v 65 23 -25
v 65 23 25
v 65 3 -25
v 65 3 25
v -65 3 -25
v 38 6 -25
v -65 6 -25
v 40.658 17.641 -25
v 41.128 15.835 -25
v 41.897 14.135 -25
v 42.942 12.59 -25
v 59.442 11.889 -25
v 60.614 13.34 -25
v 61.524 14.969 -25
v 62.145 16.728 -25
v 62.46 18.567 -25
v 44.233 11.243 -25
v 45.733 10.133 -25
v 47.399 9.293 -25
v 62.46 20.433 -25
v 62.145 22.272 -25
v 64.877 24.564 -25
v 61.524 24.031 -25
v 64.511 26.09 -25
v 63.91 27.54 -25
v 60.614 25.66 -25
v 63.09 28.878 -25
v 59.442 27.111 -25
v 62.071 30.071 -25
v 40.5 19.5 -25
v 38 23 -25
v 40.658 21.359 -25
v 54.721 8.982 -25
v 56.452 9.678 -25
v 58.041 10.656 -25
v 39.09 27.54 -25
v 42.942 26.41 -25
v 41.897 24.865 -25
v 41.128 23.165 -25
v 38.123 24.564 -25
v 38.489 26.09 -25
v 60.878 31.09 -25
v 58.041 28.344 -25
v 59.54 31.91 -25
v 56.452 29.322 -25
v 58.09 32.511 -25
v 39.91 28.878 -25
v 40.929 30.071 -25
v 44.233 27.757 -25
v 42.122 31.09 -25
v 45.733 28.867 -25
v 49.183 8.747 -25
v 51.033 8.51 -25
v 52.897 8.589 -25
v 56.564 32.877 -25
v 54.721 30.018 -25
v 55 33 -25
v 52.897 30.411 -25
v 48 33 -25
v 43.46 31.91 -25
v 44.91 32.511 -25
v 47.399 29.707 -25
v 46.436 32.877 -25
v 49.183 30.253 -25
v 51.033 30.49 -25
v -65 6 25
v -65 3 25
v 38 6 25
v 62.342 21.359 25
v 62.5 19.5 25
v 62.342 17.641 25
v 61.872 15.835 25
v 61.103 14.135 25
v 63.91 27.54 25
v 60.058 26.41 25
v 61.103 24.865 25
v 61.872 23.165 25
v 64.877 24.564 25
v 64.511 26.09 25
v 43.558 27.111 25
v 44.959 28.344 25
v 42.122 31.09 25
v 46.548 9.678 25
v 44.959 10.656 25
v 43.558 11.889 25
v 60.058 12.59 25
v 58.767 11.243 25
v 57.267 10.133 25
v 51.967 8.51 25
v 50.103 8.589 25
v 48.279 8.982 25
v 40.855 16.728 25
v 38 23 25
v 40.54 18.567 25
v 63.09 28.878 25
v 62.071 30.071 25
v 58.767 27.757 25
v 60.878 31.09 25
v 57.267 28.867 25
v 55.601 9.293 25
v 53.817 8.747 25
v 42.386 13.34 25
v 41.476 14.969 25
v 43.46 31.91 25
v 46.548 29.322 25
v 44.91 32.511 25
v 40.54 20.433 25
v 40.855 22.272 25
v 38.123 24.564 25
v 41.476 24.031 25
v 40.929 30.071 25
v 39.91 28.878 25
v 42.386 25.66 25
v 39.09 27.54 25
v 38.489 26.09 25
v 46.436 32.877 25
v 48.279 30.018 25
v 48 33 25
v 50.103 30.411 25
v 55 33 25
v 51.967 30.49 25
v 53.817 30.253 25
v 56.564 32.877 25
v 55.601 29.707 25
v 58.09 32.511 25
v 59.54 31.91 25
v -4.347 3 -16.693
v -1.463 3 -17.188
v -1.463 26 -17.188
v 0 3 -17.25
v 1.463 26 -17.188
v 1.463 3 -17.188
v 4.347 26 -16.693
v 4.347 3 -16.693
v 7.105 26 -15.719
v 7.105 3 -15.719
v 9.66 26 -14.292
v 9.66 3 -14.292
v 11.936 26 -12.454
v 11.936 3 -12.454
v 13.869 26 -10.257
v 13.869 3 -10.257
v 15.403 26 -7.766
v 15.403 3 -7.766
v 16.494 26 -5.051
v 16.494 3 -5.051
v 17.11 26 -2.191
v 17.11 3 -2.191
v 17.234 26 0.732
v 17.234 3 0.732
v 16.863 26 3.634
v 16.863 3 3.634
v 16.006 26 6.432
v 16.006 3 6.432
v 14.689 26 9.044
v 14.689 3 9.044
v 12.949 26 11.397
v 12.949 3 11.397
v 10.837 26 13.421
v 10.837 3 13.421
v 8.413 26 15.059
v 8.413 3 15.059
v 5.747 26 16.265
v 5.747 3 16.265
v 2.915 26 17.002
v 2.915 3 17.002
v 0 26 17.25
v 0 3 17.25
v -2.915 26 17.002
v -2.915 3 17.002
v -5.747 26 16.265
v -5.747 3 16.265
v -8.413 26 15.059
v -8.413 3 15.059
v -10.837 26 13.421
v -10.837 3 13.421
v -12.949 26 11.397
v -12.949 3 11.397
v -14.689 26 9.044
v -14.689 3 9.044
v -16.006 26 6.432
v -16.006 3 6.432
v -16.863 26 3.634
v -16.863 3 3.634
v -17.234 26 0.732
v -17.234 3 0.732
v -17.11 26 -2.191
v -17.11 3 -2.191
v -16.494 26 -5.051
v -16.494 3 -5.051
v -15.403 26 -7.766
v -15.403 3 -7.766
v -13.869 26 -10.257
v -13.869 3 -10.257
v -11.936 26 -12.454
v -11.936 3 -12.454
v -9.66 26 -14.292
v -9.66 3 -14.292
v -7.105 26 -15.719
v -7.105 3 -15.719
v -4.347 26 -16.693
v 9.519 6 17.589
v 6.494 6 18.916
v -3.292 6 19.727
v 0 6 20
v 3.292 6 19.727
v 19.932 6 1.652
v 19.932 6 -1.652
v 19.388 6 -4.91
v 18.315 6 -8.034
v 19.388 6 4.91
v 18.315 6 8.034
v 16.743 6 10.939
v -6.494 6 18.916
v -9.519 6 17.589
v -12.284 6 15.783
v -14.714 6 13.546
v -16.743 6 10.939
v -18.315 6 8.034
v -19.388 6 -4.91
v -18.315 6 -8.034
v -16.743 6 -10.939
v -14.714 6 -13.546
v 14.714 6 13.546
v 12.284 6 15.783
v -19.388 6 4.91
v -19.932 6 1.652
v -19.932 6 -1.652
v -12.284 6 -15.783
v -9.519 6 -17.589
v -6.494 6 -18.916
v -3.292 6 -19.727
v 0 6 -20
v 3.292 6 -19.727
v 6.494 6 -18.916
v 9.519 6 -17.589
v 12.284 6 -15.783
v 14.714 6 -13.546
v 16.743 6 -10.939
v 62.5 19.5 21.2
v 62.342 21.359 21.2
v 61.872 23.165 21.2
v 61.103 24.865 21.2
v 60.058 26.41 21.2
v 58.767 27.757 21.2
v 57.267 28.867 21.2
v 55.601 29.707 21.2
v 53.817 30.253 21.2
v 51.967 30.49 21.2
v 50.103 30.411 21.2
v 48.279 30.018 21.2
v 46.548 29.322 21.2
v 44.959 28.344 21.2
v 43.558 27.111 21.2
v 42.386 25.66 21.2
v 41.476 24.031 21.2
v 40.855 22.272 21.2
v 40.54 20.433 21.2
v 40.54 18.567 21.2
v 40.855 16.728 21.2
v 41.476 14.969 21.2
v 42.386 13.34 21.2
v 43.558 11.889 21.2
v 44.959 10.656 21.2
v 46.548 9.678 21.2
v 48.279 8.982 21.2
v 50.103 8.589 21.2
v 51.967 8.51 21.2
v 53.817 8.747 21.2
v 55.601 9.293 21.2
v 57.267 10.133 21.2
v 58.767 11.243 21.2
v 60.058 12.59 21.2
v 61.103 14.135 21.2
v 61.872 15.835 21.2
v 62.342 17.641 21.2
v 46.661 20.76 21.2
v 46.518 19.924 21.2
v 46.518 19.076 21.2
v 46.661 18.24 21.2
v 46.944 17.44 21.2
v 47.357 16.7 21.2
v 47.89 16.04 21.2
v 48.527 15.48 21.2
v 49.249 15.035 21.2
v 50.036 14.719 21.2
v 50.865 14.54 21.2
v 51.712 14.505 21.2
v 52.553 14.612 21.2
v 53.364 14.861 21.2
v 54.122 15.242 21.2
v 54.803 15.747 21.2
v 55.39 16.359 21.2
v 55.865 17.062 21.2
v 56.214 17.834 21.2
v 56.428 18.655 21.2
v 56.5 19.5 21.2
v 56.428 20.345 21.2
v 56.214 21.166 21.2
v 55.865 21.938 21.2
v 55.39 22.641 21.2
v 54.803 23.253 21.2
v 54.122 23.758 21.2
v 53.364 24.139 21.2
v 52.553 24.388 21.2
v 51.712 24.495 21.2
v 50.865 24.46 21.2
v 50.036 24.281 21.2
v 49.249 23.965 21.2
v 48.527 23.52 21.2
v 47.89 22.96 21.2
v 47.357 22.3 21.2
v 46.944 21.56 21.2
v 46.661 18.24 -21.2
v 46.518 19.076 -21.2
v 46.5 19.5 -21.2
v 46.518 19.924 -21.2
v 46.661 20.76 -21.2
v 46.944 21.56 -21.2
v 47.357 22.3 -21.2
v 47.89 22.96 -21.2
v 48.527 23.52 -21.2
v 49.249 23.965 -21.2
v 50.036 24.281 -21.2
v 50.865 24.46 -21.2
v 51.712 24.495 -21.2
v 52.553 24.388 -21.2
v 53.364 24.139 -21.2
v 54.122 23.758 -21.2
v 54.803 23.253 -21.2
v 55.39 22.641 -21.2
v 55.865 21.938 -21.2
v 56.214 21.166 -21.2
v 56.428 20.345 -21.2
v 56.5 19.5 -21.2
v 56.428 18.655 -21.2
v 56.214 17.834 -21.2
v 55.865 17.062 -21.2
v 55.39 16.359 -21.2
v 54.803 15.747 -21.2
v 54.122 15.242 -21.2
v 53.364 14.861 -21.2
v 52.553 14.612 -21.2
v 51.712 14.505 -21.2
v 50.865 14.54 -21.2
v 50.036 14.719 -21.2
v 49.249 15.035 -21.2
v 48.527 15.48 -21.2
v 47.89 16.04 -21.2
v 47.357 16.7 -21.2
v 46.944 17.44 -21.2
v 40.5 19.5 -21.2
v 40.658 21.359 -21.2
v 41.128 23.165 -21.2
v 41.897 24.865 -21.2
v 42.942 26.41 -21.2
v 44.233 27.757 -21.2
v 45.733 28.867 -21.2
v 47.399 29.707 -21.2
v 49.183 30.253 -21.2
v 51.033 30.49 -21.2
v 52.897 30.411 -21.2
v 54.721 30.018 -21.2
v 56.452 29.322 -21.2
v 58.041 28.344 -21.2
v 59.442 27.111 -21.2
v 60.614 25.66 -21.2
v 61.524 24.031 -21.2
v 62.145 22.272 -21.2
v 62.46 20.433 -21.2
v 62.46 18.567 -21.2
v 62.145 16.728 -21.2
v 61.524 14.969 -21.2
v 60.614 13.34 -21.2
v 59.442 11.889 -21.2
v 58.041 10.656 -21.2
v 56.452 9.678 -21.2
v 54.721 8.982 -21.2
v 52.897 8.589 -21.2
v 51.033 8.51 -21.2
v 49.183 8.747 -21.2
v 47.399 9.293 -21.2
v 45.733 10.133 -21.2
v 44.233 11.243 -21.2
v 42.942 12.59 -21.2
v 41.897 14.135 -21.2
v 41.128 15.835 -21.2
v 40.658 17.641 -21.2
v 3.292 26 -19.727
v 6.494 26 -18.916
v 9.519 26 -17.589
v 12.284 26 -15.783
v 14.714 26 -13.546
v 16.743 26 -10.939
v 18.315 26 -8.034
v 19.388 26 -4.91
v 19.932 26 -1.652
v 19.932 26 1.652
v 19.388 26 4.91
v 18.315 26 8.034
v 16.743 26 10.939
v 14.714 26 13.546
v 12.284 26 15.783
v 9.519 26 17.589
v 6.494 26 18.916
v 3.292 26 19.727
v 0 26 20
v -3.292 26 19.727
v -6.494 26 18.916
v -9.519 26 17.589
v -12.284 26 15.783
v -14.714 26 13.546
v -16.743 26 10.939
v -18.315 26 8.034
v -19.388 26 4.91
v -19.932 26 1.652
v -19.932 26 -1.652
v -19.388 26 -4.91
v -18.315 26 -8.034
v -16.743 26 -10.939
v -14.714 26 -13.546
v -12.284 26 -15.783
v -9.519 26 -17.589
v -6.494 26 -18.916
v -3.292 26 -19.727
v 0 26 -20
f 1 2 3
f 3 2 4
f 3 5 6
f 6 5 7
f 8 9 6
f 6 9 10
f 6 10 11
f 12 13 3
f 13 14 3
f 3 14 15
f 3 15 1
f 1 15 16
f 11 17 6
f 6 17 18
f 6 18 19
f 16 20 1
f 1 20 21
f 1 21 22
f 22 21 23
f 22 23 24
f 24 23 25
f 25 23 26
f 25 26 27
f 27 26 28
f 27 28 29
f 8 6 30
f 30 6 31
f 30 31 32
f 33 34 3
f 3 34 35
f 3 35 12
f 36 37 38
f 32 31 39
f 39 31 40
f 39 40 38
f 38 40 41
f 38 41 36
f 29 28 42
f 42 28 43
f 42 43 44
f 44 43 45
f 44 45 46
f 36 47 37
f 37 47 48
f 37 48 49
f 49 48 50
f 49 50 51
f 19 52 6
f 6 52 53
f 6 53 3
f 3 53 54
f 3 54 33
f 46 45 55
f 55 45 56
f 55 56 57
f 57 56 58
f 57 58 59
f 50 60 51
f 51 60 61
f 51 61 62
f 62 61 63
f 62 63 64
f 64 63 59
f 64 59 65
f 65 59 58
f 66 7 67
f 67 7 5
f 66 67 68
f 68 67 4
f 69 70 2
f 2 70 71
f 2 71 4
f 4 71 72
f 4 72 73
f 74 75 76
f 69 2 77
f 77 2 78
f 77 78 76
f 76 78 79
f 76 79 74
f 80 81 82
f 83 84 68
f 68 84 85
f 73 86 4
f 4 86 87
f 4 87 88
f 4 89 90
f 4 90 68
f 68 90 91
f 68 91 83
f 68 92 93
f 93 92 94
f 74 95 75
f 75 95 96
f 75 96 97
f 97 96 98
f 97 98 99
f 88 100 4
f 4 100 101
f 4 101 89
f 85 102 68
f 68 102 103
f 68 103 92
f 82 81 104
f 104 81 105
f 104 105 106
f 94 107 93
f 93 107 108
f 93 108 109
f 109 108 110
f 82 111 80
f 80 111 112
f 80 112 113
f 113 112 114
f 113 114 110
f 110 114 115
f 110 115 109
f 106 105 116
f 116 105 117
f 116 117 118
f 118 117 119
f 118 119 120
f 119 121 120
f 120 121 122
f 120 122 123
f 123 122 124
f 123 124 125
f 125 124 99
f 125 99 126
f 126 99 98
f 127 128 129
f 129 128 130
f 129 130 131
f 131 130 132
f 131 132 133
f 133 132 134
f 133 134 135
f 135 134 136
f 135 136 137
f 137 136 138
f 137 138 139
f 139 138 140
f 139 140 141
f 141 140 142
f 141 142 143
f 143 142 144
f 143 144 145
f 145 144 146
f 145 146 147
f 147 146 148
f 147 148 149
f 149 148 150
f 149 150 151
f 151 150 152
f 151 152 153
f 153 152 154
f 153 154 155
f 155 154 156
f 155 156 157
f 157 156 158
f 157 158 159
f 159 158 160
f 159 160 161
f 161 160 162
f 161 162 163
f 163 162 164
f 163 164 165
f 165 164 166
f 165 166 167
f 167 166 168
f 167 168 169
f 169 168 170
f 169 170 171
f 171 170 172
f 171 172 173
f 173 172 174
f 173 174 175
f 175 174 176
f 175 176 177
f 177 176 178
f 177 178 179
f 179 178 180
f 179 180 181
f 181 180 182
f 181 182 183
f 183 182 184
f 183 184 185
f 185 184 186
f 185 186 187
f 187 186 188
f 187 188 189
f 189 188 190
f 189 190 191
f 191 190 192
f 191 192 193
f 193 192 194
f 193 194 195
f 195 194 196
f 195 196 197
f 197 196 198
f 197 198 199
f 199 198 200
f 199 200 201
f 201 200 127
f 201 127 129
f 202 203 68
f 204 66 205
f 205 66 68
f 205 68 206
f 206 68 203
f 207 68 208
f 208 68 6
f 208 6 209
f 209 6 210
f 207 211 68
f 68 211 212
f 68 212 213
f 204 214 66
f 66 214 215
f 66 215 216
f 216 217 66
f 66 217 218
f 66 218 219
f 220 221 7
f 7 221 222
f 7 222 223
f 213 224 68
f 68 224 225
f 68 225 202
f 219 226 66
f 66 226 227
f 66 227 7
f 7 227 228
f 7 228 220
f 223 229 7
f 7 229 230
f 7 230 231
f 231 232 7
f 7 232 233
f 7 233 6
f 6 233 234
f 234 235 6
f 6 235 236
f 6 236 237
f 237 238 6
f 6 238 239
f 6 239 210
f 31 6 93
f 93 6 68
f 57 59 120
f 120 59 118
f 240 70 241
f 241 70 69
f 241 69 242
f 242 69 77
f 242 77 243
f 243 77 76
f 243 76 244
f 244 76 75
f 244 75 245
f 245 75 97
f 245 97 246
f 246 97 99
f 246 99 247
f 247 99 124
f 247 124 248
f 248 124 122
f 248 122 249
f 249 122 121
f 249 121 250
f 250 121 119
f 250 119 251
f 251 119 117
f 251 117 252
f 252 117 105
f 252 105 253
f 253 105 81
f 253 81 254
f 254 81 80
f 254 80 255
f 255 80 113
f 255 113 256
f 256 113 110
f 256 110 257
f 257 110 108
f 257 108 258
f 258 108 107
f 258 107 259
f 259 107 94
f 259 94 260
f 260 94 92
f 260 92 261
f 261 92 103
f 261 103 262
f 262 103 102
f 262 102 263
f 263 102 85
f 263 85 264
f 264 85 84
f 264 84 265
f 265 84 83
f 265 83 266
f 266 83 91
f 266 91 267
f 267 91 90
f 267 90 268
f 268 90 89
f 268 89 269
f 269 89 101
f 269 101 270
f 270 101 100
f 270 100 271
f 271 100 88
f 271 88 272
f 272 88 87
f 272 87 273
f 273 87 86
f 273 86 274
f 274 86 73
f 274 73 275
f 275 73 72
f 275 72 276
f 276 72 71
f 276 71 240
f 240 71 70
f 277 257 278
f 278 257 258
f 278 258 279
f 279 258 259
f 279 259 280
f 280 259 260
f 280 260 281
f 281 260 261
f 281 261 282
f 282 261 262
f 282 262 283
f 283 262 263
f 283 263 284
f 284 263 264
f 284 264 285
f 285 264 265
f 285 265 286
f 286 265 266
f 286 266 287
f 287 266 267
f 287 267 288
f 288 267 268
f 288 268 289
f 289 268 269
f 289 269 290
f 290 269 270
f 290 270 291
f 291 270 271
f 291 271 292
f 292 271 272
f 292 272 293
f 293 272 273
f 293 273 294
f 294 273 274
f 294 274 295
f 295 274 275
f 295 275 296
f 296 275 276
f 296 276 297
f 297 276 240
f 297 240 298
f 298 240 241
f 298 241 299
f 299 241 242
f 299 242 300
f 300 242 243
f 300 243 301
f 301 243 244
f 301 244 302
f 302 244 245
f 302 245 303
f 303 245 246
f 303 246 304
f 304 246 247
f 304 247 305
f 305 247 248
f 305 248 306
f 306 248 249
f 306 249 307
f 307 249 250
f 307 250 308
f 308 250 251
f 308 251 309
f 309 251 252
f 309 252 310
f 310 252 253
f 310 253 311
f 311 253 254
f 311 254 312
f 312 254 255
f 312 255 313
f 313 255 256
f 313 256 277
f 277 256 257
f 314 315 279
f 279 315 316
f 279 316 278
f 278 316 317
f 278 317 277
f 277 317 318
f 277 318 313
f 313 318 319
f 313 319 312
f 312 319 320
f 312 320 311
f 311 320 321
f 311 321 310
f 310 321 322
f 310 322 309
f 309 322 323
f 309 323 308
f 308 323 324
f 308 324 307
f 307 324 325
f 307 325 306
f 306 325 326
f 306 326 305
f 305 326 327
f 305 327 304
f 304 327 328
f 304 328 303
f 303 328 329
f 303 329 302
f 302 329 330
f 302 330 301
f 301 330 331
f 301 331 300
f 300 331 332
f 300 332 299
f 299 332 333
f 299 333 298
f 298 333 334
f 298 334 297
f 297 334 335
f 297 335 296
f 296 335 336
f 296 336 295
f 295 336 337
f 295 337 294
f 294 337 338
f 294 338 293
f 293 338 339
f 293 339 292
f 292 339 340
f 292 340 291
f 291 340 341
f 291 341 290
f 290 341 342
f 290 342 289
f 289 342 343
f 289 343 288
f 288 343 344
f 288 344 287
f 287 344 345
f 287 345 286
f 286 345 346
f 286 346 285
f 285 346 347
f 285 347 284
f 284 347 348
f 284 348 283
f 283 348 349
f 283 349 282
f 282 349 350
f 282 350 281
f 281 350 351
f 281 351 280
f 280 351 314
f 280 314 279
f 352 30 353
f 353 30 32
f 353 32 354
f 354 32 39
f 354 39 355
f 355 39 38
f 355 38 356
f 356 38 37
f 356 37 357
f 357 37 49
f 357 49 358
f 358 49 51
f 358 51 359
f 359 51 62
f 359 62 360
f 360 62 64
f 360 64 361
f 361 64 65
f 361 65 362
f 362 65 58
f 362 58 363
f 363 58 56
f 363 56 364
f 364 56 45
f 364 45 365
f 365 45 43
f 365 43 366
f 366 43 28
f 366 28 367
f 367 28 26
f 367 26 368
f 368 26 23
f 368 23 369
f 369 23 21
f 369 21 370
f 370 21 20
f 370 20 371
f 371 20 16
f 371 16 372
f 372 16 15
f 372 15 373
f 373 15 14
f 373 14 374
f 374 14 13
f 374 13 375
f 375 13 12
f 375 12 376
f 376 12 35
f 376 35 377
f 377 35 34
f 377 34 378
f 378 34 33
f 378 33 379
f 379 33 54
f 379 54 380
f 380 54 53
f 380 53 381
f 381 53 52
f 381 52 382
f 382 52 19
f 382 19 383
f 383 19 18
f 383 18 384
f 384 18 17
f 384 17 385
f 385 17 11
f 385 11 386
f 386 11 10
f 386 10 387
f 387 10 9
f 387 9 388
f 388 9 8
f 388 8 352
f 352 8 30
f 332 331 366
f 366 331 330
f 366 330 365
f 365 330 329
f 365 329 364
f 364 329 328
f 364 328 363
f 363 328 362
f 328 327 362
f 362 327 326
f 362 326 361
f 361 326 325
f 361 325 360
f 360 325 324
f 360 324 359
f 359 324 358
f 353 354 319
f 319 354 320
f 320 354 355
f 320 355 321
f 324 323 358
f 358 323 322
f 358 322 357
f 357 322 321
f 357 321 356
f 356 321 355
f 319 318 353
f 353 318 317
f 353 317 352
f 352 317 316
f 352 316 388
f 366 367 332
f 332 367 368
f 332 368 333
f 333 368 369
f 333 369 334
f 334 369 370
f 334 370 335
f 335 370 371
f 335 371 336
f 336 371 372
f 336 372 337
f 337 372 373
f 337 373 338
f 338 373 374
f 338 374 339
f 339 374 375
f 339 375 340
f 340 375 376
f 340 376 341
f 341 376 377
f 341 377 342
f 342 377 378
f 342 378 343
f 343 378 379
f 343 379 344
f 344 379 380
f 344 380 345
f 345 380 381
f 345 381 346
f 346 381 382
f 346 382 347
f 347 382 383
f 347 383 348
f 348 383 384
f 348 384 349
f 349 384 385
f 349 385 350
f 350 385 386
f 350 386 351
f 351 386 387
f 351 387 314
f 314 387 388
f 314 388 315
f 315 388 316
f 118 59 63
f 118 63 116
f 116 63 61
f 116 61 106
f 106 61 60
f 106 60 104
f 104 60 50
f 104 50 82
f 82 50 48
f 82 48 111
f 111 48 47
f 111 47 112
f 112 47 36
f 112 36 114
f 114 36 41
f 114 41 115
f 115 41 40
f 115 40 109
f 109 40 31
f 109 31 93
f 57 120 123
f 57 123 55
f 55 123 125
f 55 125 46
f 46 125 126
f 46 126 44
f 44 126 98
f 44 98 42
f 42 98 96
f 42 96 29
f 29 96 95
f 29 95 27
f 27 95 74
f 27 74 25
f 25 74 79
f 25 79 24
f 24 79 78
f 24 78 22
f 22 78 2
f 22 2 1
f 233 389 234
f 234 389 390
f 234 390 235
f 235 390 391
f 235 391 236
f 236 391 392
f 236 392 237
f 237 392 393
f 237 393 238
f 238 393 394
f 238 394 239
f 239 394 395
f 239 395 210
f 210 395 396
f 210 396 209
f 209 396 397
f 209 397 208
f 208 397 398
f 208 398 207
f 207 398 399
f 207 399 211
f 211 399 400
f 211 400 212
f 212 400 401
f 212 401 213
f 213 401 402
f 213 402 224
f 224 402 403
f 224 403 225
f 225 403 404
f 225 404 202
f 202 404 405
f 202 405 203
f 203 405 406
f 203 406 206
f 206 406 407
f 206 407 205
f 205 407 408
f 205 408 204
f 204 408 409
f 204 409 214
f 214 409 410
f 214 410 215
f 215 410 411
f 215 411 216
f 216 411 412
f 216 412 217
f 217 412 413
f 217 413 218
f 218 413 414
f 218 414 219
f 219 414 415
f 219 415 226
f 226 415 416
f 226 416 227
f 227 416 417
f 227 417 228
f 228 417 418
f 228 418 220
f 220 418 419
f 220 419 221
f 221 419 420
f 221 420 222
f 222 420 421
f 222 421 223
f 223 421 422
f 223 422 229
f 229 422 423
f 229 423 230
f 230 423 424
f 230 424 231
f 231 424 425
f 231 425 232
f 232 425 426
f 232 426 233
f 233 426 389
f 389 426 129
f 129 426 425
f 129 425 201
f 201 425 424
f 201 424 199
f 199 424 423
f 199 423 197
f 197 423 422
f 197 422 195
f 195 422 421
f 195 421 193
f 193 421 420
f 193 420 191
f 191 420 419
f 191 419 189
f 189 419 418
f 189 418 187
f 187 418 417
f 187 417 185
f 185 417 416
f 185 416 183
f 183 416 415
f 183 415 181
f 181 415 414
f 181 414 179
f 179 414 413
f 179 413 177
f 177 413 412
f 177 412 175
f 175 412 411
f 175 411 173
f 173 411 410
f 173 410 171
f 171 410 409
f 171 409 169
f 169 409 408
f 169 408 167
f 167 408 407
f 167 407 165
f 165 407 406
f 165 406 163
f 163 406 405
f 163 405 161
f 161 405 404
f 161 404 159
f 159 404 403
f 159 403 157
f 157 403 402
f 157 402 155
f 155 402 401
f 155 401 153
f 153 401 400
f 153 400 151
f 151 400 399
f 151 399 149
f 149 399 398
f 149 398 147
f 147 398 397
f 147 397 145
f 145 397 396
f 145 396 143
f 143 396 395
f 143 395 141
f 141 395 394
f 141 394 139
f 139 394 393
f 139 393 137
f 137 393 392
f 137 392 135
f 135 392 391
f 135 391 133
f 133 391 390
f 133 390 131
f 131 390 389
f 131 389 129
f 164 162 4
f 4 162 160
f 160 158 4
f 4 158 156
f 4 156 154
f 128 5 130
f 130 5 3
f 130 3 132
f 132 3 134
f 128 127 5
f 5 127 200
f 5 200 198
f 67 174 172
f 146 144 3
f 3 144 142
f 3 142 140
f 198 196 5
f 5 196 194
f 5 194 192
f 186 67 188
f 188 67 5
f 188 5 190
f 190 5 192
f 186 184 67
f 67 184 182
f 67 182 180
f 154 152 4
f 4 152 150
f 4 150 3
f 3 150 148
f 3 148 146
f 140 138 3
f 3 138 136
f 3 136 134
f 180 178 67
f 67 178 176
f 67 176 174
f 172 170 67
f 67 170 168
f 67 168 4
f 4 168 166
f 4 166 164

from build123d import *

# Parameters (mm, degrees)
BOSS_EXTRUDE2_DEPTH = 6
BOSS_EXTRUDE4_DEPTH = 27.000000000000004
SKETCH6_R           = 10.999999999999993
CUT_EXTRUDE3_DEPTH  = 3.8
SKETCH8_R           = 4.999999999999997
CUT_EXTRUDE4_DEPTH  = 12
CUT_EXTRUDE5_START  = -3.8
SKETCH9_R           = 11
CUT_EXTRUDE5_DEPTH  = 3.8
CUT_EXTRUDE6_START  = -12.5
SKETCH10_R          = 4.999999999999997
CUT_EXTRUDE6_DEPTH  = 12.5
FILLET1_R           = 10
FILLET2_R           = 10
CUT_EXTRUDE7_START  = -90
SKETCH10_2_R        = 4.999999999999997
CUT_EXTRUDE7_DEPTH  = 90
SKETCH14_R          = 20
BOSS_EXTRUDE5_DEPTH = 20
SKETCH15_R          = 17.25
CUT_EXTRUDE8_DEPTH  = 60.00000000000001
SKETCH16_W          = 130
SKETCH16_H          = 50
CUT_EXTRUDE9_DEPTH  = 3


with BuildPart() as part:
    # Sketch1 → Boss-Extrude2 (new body)
    with BuildSketch(Plane(origin=(0, 0, 0), x_dir=(1, 0, 0), z_dir=(0, 1, 0))):
        Polygon((-64.99999999999997, 24.999999999999993), (65.00000000000003, 24.999999999999993), (65.00000000000001, -25.000000000000007), (-64.99999999999999, -25.000000000000007), align=None)
    extrude(amount=BOSS_EXTRUDE2_DEPTH)

    # Sketch5 → Boss-Extrude4 (add)
    with BuildSketch(Plane(origin=(0, 6, 0), x_dir=(1, 0, 0), z_dir=(0, 1, 0))):
        Polygon((38.000000000000014, 24.999999999999993), (65.00000000000001, 24.999999999999993), (65.00000000000001, -25.000000000000007), (38.00000000000003, -25.000000000000007), align=None)
    extrude(amount=BOSS_EXTRUDE4_DEPTH)

    # Sketch6 → Cut-Extrude3 (cut)
    with BuildSketch(Plane.XY.offset(25.000000000000007)):
        with Locations((51.50000000000002, 19.5)):
            Circle(SKETCH6_R)
    extrude(amount=-CUT_EXTRUDE3_DEPTH, mode=Mode.SUBTRACT)

    # Sketch8 → Cut-Extrude4 (cut)
    with BuildSketch(Plane.XY.offset(21.200000000000006)):
        with Locations((51.50000000000002, 19.5)):
            Circle(SKETCH8_R)
    extrude(amount=-CUT_EXTRUDE4_DEPTH, mode=Mode.SUBTRACT)

    # Sketch9 → Cut-Extrude5 (cut)
    with BuildSketch(Plane(origin=(0, 0, -24.999999999999993), x_dir=(-1, 0, 0), z_dir=(0, 0, -1)).offset(CUT_EXTRUDE5_START)):
        with Locations((-51.50000000000003, 19.5)):
            Circle(SKETCH9_R)
    extrude(amount=CUT_EXTRUDE5_DEPTH, mode=Mode.SUBTRACT)

    # Sketch10 → Cut-Extrude6 (cut)
    with BuildSketch(Plane(origin=(0, 0, -21.199999999999992), x_dir=(-1, 0, 0), z_dir=(0, 0, -1)).offset(CUT_EXTRUDE6_START)):
        with Locations((-51.50000000000003, 19.5)):
            Circle(SKETCH10_R)
    extrude(amount=CUT_EXTRUDE6_DEPTH, mode=Mode.SUBTRACT)

    # Fillet1
    fillet1_edges = [part.edges().sort_by_distance(p)[0] for p in [
        (38.00000000000002, 33, 7.11e-15),
    ]]
    fillet(fillet1_edges, radius=FILLET1_R)

    # Fillet2
    fillet2_edges = [part.edges().sort_by_distance(p)[0] for p in [
        (65.00000000000001, 33, 7.11e-15),
    ]]
    fillet(fillet2_edges, radius=FILLET2_R)

    # Sketch10<2> → Cut-Extrude7 (cut)
    with BuildSketch(Plane(origin=(0, 0, -21.199999999999992), x_dir=(-1, 0, 0), z_dir=(0, 0, -1)).offset(CUT_EXTRUDE7_START)):
        with Locations((-51.50000000000003, 19.5)):
            Circle(SKETCH10_2_R)
    extrude(amount=CUT_EXTRUDE7_DEPTH, mode=Mode.SUBTRACT)

    # Sketch14 → Boss-Extrude5 (add)
    with BuildSketch(Plane(origin=(0, 6, 0), x_dir=(1, 0, 0), z_dir=(0, 1, 0))):
        Circle(SKETCH14_R)
    extrude(amount=BOSS_EXTRUDE5_DEPTH)

    # Sketch15 → Cut-Extrude8 (cut)
    with BuildSketch(Plane(origin=(0, 26.000000000000004, 0), x_dir=(1, 0, 0), z_dir=(0, 1, 0))):
        Circle(SKETCH15_R)
    extrude(amount=-CUT_EXTRUDE8_DEPTH, mode=Mode.SUBTRACT)

    # Sketch16 → Cut-Extrude9 (cut)
    with BuildSketch(Plane.XZ):
        Rectangle(SKETCH16_W, SKETCH16_H)
    extrude(amount=-CUT_EXTRUDE9_DEPTH, mode=Mode.SUBTRACT)


solid = part.part
